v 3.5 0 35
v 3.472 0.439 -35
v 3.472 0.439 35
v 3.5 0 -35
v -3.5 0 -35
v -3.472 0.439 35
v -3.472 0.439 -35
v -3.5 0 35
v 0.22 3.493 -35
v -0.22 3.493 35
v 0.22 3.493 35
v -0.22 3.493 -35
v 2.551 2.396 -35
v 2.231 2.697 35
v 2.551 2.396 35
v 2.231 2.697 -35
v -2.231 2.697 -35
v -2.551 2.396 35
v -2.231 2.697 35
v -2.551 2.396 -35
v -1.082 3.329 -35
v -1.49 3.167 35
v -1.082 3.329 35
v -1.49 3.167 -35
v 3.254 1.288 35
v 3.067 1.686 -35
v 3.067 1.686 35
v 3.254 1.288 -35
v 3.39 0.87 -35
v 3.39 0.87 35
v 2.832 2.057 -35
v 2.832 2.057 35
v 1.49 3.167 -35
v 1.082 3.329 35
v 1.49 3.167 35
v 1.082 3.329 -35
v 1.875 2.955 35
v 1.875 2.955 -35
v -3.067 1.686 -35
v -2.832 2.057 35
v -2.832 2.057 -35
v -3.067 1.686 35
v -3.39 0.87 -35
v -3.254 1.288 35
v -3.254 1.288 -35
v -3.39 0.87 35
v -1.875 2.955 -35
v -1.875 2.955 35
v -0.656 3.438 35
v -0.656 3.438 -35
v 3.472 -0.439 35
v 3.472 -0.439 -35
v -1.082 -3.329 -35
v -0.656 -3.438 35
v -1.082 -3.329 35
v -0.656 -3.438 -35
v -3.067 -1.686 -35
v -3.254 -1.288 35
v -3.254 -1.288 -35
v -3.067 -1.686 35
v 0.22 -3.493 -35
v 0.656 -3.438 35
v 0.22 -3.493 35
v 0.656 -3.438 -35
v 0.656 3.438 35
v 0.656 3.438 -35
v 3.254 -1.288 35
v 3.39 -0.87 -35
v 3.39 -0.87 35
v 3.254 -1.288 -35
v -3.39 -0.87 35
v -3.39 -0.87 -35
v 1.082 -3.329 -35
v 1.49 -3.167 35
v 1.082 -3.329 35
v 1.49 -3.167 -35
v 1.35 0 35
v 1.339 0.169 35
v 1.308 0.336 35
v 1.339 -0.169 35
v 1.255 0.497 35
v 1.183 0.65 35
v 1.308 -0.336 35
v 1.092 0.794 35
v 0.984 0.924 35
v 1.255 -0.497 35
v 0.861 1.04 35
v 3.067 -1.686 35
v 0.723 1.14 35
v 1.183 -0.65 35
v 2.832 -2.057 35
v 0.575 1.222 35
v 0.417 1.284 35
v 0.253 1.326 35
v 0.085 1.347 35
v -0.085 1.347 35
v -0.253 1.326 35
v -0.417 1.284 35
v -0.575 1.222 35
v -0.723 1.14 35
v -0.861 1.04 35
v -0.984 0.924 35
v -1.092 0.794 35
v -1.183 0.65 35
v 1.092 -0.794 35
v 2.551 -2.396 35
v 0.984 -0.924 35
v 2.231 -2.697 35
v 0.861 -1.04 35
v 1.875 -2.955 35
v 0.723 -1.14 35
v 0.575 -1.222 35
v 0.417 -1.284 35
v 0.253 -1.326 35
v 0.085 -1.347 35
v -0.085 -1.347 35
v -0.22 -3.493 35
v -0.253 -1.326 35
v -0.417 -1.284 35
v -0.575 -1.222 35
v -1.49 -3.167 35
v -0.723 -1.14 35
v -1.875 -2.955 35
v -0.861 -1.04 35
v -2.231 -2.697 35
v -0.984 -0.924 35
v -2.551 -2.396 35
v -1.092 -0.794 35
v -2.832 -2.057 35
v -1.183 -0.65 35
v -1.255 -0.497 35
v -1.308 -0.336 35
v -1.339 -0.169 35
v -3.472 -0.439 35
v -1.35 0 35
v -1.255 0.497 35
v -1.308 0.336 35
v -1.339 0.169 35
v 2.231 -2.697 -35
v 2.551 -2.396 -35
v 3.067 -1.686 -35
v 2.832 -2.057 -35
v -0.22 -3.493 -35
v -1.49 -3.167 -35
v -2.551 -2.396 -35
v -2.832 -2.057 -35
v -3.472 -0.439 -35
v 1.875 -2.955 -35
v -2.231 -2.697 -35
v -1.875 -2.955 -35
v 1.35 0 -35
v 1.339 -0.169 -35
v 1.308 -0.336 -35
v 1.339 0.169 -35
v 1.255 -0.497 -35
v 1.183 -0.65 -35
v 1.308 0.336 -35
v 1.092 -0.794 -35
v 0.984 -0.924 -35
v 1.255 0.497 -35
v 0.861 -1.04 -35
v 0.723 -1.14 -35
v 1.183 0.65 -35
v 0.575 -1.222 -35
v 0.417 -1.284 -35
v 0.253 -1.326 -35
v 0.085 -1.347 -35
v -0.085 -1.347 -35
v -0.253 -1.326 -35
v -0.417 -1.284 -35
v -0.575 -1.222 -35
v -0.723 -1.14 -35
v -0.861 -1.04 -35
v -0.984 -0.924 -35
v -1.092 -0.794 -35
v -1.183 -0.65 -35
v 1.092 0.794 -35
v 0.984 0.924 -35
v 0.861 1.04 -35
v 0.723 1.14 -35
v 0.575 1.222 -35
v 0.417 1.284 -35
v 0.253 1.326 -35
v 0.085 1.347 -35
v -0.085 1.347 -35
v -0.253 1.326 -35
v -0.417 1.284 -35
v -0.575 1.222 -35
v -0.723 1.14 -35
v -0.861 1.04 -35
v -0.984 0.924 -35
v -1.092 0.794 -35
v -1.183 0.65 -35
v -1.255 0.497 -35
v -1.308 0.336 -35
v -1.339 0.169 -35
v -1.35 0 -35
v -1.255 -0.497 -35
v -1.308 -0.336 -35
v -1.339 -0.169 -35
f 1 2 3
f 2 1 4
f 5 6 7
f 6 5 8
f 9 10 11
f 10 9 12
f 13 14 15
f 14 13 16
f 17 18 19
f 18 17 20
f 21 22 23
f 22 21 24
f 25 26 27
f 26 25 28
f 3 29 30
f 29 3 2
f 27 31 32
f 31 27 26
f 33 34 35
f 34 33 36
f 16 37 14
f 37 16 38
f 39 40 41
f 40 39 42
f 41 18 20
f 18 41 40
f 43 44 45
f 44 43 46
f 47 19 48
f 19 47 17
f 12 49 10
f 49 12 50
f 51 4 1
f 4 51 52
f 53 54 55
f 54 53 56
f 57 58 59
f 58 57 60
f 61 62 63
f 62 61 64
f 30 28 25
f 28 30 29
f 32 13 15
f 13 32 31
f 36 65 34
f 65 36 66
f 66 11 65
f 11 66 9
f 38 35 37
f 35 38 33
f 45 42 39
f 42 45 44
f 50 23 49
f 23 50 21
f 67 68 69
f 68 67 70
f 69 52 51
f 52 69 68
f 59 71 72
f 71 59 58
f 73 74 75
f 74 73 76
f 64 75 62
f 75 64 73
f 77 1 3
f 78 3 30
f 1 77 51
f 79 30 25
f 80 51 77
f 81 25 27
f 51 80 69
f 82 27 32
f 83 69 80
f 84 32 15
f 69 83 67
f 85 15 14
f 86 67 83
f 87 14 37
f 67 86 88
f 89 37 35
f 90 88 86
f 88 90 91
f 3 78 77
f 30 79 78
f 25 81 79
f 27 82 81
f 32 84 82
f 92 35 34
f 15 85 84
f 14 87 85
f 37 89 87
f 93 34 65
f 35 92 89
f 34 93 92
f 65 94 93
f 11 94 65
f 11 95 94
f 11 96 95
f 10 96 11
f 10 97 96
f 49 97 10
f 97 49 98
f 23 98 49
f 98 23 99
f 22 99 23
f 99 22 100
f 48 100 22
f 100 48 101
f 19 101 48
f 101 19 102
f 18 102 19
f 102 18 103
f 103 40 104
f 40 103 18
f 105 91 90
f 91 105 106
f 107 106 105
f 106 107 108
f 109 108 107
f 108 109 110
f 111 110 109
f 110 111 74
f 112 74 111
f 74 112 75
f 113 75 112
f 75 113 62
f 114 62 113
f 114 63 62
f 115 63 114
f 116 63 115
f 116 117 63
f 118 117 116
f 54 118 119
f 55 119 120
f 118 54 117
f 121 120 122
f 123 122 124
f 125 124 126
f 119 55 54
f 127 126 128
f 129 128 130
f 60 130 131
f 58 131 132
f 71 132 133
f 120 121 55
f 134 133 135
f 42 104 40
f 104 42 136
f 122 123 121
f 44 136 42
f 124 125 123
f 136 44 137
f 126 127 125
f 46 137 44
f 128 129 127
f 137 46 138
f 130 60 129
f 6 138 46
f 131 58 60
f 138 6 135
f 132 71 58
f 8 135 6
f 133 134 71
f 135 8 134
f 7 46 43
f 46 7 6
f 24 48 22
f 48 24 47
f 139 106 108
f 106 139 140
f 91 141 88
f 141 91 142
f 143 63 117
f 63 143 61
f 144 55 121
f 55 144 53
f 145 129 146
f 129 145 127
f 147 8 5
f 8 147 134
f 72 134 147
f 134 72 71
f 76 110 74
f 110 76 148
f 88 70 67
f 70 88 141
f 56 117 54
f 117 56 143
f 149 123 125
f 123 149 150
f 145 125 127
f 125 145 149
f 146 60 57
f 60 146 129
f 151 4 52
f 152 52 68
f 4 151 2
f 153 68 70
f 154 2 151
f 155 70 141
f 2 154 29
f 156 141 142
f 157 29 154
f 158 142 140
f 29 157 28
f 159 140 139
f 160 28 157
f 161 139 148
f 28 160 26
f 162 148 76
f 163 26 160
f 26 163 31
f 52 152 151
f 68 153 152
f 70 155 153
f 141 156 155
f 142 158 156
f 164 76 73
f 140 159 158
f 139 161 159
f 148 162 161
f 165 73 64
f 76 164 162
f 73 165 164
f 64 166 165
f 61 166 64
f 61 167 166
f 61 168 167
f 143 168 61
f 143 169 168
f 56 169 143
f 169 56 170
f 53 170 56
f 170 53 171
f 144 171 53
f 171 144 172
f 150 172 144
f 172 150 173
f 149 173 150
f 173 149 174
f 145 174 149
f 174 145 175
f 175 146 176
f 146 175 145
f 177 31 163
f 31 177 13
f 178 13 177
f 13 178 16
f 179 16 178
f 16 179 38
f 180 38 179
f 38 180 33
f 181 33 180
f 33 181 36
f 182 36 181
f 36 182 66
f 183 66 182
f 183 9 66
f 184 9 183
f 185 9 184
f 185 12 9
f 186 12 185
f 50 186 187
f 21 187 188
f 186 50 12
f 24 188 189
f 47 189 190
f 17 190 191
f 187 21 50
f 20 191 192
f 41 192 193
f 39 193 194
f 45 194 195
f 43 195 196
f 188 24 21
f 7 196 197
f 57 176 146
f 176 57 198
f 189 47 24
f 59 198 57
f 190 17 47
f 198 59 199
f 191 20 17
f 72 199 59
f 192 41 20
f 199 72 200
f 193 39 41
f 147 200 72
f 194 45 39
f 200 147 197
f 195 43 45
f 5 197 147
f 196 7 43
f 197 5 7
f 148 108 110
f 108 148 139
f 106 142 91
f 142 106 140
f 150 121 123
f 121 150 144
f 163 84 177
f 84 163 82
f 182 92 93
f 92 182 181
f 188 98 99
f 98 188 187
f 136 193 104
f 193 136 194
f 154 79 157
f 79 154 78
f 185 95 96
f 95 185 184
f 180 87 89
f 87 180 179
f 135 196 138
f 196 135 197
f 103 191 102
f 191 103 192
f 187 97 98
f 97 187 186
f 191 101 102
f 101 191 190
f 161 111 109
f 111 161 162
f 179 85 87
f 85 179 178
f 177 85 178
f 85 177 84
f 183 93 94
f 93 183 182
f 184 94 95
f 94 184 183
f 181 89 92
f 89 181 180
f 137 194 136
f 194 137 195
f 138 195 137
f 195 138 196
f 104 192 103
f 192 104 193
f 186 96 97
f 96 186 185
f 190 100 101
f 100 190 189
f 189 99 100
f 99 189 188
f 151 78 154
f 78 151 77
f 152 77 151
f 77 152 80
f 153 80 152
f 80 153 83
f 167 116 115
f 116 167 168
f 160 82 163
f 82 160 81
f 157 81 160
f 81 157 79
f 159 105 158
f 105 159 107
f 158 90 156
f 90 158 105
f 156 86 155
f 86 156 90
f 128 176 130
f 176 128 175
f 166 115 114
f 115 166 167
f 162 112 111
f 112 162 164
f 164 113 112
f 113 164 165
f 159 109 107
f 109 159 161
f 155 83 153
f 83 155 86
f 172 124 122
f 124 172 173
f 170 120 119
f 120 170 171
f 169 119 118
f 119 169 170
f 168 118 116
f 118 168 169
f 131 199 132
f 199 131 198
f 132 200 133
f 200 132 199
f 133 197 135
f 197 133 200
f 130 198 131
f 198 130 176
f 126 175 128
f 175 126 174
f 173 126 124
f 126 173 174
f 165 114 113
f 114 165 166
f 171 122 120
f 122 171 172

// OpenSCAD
$fn = 50;


difference() {
	union() {
		translate(v = [0, 0, -35.0000000000]) {
			cylinder(h = 70, r = 3.5000000000);
		}
	}
	union() {
		translate(v = [0, 0, -100.0000000000]) {
			cylinder(h = 200, r = 1.3500000000);
		}
	}
}
